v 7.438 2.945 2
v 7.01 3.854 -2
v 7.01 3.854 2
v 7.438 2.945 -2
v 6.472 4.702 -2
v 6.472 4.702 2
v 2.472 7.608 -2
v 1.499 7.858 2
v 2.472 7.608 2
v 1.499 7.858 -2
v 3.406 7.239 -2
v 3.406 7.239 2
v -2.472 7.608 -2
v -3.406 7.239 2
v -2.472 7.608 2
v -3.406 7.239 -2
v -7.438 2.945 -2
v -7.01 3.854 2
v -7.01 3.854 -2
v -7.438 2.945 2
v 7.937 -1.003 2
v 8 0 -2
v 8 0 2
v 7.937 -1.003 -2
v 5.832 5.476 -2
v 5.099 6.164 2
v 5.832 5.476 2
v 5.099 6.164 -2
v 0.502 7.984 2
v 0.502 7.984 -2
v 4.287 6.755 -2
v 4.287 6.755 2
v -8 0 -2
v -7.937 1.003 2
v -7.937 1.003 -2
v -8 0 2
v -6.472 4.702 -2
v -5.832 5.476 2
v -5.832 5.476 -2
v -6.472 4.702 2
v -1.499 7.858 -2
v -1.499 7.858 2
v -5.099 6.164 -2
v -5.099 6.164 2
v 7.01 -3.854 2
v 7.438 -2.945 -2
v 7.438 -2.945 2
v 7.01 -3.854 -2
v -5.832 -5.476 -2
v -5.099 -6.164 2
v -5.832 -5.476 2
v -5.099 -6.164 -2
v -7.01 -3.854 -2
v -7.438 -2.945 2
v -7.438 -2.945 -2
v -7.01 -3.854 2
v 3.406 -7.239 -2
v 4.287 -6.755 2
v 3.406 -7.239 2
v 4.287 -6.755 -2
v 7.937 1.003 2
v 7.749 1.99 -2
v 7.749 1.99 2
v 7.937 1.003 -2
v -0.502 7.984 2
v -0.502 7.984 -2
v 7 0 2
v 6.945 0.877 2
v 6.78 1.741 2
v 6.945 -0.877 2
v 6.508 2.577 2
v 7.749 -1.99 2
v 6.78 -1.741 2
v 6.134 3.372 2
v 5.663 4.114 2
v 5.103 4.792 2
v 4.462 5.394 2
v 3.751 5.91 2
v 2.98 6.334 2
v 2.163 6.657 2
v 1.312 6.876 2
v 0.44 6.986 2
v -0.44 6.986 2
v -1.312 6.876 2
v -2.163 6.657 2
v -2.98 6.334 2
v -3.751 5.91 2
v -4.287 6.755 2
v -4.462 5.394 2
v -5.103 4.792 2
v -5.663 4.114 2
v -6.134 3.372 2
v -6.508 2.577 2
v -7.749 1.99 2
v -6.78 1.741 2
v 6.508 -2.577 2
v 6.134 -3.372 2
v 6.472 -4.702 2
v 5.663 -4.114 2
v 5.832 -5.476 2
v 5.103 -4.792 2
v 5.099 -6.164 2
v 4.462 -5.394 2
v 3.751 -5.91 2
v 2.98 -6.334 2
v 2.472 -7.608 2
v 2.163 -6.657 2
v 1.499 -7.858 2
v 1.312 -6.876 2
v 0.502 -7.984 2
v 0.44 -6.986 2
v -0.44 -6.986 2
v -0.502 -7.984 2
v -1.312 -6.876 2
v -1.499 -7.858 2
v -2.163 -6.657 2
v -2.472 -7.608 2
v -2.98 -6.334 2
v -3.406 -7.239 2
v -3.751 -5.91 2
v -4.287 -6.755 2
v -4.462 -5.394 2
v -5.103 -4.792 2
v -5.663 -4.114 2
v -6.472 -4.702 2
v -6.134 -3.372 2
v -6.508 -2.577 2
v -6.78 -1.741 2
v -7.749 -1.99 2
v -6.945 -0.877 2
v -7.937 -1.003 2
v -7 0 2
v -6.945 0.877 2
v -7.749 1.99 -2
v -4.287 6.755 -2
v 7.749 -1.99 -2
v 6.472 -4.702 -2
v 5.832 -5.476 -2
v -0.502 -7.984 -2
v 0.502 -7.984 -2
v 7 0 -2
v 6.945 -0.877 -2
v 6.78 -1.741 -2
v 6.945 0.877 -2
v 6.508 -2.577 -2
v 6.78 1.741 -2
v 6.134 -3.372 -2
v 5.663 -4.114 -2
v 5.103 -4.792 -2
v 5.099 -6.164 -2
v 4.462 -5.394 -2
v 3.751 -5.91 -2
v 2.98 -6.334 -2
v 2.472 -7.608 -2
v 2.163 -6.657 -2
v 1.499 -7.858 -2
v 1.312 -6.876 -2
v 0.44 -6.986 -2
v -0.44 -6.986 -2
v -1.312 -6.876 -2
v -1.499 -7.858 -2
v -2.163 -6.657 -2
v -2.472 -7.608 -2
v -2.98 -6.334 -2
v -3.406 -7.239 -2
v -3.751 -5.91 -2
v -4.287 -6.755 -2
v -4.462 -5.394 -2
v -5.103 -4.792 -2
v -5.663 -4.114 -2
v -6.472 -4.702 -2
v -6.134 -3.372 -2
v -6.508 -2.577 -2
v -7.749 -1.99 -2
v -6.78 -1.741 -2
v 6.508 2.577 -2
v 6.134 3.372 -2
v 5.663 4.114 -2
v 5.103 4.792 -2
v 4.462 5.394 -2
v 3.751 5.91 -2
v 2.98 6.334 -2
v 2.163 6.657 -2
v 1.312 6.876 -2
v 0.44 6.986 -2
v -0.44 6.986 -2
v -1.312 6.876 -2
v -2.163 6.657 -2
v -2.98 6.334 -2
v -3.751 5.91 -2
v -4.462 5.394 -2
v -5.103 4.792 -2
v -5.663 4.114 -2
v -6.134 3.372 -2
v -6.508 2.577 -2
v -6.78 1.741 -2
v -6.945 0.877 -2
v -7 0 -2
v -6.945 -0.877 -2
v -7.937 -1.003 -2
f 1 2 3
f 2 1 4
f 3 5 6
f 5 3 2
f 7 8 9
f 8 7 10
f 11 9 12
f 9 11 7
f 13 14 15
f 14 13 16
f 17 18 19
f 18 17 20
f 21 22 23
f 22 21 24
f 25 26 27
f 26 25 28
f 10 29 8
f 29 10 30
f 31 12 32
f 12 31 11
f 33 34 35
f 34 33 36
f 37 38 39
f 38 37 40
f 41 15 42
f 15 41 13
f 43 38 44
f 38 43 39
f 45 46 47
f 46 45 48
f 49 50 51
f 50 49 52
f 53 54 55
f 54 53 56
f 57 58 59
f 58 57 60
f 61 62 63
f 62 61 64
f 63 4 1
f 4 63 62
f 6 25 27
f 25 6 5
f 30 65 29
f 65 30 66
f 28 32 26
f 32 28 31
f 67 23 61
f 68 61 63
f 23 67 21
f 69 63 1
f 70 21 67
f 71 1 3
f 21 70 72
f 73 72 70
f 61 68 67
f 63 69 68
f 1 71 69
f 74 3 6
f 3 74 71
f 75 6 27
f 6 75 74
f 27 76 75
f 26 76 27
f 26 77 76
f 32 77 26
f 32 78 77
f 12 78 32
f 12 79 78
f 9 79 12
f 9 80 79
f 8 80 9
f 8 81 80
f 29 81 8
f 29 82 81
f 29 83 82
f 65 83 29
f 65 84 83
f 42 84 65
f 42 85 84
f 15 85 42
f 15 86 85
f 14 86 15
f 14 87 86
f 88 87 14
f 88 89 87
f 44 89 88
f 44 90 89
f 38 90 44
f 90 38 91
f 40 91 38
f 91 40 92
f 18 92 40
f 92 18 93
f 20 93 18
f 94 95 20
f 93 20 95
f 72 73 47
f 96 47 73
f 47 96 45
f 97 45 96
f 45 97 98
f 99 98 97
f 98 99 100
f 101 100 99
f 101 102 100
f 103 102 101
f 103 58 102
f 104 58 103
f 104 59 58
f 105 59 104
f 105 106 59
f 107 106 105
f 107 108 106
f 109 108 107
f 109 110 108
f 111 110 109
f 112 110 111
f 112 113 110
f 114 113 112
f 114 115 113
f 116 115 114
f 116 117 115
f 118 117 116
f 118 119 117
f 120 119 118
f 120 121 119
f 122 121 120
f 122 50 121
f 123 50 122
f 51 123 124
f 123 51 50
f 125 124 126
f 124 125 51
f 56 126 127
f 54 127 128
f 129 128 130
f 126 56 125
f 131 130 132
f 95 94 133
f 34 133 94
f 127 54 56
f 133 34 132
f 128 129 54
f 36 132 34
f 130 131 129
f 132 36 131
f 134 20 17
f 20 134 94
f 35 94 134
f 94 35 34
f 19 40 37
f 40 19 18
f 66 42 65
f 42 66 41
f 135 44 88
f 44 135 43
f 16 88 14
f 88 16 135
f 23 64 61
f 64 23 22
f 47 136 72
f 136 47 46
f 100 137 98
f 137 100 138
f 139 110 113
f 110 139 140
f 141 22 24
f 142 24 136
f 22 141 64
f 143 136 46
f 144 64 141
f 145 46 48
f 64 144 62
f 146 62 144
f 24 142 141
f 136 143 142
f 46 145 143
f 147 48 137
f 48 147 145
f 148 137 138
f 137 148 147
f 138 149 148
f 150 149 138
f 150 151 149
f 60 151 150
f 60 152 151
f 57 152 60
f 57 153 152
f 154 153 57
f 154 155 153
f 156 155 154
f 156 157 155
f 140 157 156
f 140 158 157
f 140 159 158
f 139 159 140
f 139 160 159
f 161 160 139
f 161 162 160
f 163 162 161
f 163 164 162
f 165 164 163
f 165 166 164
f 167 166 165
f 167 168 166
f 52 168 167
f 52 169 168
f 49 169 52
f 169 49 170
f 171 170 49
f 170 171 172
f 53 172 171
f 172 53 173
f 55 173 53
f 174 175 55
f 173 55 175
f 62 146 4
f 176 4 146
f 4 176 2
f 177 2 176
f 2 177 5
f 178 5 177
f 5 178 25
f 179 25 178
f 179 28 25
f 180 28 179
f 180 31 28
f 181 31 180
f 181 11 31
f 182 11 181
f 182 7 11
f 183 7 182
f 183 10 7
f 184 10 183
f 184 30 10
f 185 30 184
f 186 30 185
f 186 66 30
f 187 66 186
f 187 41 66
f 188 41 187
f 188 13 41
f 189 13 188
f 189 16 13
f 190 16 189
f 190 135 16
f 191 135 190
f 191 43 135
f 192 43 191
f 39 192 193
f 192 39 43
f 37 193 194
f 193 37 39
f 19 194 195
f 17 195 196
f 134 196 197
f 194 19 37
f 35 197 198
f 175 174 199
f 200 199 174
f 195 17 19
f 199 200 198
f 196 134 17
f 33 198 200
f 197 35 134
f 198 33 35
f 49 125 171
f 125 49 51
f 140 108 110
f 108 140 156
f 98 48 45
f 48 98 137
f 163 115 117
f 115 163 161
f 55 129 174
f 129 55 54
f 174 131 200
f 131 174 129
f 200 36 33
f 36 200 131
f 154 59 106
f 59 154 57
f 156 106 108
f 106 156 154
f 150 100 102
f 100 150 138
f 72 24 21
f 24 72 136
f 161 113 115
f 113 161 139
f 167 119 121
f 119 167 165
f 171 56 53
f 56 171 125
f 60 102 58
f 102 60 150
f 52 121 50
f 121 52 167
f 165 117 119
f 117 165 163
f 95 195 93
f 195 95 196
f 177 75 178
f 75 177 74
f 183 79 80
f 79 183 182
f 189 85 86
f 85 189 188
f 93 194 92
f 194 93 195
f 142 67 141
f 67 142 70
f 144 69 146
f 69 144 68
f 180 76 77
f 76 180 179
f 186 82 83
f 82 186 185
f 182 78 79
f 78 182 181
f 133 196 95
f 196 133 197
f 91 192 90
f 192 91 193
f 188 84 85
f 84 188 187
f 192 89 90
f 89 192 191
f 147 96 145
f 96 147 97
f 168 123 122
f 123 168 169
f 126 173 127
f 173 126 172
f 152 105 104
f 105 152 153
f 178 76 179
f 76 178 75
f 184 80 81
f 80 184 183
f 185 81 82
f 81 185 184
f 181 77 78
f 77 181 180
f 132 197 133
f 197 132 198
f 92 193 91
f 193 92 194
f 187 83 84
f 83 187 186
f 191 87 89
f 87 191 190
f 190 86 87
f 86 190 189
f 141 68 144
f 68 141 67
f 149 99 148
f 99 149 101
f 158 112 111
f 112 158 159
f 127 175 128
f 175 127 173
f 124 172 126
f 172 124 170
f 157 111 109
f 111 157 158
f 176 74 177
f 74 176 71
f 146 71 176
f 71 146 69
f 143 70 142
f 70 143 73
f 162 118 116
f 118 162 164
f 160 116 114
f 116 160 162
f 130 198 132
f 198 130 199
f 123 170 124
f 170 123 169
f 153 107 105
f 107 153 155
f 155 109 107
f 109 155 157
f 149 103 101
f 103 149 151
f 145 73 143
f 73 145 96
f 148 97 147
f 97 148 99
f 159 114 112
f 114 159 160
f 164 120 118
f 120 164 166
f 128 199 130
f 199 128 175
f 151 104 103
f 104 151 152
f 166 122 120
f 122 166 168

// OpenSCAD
$fn = 50;


difference() {
	union() {
		translate(v = [0, 0, -2.0000000000]) {
			cylinder(h = 4, r = 8.0000000000);
		}
	}
	union() {
		translate(v = [0, 0, -100.0000000000]) {
			cylinder(h = 200, r = 7);
		}
	}
}
